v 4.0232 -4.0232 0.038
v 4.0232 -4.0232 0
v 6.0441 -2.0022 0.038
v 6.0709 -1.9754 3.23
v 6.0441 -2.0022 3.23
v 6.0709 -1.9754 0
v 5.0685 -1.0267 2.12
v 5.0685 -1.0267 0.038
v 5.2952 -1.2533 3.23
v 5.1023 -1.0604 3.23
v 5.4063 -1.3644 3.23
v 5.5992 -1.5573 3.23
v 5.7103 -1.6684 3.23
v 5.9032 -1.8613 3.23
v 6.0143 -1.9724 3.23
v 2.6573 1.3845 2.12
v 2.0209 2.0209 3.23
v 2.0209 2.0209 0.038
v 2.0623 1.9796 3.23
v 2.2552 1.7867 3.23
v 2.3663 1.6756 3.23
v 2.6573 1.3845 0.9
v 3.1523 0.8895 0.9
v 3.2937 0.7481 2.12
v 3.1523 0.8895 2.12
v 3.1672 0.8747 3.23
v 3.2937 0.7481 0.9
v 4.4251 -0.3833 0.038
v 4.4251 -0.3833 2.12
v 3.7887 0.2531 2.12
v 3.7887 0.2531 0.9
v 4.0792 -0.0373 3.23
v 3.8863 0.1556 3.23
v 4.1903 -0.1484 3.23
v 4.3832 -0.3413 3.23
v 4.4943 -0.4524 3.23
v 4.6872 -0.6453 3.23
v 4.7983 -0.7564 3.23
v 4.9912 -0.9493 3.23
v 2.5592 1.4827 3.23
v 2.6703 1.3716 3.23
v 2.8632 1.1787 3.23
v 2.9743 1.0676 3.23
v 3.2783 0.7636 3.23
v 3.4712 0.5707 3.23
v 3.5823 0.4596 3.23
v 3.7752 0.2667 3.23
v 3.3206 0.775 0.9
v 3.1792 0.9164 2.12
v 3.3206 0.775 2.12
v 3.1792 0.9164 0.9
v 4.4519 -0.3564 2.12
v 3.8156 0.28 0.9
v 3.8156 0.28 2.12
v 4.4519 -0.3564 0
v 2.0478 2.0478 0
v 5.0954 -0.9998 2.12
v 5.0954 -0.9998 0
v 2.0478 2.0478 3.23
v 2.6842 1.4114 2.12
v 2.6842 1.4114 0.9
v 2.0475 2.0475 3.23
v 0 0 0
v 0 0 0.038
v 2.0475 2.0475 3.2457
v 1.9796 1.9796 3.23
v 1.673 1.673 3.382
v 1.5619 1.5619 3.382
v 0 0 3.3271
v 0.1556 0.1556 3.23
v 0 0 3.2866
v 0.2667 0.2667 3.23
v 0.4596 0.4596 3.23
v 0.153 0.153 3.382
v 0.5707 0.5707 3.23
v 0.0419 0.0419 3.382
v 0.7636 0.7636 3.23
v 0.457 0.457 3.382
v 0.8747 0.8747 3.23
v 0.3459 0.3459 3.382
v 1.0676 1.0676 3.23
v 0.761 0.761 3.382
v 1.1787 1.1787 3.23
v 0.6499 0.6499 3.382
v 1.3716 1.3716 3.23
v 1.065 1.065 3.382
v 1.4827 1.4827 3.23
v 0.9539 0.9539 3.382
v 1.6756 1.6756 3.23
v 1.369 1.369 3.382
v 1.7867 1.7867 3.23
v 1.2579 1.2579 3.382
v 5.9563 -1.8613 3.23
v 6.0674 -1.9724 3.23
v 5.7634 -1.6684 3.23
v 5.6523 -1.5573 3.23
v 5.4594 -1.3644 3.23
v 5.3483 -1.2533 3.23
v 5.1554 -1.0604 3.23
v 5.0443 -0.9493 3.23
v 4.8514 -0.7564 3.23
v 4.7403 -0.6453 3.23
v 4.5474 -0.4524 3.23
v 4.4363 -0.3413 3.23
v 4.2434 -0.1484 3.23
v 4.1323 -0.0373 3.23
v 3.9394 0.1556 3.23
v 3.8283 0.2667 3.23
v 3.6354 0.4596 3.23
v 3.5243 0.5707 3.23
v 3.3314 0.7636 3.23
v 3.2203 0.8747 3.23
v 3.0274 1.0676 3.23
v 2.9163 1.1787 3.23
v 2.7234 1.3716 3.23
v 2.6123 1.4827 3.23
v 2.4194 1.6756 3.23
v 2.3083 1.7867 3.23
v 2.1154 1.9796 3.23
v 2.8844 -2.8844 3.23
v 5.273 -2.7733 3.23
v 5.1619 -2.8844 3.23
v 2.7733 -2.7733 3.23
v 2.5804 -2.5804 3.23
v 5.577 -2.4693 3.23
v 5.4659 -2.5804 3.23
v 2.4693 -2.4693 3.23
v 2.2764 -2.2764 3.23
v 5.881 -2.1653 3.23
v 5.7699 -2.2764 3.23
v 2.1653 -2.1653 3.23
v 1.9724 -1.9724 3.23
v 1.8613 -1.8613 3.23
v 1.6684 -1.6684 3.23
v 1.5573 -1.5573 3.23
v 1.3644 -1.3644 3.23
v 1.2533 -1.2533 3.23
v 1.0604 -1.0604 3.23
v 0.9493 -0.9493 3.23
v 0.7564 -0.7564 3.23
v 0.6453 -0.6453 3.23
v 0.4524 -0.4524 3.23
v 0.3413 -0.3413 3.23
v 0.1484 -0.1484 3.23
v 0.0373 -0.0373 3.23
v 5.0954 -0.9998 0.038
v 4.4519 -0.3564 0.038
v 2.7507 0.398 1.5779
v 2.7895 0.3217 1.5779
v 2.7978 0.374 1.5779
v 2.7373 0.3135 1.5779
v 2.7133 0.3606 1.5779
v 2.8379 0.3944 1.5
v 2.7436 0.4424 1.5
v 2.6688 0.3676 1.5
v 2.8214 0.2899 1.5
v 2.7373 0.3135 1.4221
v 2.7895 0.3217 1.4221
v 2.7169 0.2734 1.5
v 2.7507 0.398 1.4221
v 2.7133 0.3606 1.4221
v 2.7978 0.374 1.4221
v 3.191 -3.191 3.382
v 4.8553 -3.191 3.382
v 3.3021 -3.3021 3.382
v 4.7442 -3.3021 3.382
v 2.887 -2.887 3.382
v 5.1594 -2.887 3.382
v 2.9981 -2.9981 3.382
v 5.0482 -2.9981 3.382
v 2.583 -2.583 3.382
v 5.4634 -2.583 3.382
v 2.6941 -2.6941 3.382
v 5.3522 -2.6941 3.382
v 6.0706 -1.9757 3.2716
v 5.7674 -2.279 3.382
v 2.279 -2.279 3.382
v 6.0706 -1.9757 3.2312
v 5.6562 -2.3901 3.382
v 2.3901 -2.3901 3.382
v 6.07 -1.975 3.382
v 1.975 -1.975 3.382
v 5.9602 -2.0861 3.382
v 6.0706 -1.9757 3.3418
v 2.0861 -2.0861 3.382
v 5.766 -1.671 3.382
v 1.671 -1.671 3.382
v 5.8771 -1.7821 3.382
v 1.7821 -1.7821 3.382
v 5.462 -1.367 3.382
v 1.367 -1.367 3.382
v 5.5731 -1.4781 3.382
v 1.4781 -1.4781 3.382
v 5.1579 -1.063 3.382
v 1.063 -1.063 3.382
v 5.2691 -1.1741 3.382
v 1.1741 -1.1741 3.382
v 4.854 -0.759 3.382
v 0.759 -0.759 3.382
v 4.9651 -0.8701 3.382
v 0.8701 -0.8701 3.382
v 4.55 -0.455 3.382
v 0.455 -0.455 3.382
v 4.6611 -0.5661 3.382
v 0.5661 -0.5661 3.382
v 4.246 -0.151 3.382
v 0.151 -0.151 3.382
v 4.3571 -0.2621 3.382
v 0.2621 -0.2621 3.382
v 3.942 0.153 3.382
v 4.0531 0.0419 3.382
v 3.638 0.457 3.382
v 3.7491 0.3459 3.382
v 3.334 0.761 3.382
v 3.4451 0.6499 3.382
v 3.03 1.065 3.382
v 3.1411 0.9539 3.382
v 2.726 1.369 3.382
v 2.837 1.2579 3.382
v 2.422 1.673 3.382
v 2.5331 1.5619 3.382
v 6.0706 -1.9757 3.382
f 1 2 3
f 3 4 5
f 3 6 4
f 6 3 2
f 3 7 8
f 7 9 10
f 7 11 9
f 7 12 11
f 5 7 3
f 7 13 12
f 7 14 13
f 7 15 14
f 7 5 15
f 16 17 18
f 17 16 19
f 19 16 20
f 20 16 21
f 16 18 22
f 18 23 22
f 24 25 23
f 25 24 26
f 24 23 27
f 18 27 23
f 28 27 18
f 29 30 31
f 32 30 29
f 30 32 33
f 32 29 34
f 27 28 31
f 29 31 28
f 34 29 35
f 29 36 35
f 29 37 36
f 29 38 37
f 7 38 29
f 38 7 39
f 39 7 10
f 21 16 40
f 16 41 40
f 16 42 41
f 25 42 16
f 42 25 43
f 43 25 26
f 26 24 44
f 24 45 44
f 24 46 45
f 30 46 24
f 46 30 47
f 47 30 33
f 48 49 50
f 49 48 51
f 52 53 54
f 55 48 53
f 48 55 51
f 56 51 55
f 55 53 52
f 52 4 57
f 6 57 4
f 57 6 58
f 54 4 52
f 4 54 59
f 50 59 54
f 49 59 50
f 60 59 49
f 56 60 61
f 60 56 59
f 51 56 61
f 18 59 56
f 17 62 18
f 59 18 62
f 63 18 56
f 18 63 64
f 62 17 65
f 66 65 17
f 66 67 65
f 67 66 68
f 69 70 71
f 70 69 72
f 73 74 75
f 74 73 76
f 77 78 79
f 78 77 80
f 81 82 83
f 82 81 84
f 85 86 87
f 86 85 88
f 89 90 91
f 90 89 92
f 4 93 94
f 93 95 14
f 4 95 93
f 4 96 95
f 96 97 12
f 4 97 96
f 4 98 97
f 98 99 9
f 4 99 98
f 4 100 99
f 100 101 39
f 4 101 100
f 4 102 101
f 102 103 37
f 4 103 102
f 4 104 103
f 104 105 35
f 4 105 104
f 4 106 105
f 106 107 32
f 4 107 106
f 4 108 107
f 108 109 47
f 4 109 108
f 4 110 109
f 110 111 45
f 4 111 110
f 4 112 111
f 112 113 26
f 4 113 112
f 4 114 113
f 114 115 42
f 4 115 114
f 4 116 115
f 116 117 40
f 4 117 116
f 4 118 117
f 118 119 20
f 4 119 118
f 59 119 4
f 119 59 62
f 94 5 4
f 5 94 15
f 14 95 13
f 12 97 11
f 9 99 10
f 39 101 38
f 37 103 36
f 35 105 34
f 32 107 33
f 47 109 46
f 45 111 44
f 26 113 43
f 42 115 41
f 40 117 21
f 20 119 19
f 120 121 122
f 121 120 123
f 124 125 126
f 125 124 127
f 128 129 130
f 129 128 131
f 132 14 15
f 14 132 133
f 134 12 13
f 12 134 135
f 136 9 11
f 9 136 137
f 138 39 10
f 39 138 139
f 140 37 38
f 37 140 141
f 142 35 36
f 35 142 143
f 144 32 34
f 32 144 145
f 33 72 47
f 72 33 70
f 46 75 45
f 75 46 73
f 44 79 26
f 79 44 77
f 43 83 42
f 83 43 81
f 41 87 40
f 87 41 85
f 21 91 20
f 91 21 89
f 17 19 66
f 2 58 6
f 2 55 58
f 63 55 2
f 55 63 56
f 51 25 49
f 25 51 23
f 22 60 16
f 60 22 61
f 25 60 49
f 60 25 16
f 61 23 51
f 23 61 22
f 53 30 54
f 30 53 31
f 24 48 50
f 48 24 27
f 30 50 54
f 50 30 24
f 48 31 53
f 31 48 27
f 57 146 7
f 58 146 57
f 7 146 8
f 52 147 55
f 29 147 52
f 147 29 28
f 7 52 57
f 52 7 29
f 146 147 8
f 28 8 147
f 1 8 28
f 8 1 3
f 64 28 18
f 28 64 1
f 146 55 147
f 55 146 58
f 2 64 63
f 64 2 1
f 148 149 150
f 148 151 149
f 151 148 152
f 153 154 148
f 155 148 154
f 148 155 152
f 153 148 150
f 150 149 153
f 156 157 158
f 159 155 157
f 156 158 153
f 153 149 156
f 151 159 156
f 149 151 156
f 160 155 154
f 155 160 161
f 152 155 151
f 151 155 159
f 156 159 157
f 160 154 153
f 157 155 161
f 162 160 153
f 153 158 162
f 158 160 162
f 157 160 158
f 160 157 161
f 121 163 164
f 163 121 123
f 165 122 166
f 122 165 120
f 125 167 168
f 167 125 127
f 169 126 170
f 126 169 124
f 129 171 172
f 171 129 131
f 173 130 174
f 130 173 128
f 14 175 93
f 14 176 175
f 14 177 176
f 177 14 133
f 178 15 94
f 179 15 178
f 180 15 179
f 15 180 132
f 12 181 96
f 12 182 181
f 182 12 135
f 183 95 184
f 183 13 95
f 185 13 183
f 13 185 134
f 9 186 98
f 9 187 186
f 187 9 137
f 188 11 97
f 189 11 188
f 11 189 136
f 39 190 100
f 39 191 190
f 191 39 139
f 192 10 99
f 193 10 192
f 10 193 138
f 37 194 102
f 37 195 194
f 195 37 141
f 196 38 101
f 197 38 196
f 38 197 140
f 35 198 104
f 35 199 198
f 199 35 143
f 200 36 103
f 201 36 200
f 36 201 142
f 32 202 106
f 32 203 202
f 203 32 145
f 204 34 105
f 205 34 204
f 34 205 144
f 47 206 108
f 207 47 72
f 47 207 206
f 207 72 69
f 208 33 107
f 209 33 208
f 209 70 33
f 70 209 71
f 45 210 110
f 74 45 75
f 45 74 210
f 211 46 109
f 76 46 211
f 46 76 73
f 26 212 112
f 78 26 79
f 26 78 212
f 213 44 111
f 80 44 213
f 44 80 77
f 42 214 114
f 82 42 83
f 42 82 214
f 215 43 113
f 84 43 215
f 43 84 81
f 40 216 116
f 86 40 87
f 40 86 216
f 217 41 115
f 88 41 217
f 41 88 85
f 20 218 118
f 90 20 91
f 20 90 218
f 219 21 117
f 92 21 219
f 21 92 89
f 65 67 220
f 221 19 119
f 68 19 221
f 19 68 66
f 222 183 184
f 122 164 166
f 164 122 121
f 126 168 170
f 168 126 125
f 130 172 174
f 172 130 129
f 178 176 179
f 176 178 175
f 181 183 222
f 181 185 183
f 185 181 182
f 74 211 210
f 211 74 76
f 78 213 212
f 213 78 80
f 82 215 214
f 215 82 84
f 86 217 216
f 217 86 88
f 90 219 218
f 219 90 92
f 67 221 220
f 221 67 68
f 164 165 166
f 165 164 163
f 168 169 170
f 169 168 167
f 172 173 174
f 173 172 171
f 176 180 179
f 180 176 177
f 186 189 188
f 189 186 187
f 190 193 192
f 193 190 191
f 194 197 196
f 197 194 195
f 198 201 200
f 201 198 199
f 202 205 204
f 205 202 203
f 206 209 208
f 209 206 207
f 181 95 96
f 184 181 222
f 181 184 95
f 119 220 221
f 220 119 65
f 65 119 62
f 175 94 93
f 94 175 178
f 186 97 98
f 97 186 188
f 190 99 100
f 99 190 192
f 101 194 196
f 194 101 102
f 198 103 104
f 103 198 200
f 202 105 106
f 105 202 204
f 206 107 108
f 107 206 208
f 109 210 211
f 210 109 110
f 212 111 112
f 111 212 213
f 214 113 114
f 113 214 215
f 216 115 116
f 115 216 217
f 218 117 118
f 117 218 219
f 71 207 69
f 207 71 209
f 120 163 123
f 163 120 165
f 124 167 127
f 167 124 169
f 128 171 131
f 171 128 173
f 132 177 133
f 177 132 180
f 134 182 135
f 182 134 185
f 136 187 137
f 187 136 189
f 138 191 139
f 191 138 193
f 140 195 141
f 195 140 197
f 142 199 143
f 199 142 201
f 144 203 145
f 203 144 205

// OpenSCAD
$psi=.1;

rotate([0,0,-45]) {
// foor
cube([5.6896, 2.896, 0.038]);
// wall plane
translate([0, 2.896, 0]) {
    rotate([90,0,0]) {
        difference() {
            // wall
            cube([5.6896, 3.23, 0.038]);
            // window
            translate([0.9, 0.9, 0-$psi/2]) {
                cube([0.7, 1.22, 0.038 + $psi]);
            }
            // window
            translate([1.8, 0.9, 0-$psi/2]) {
                cube([0.7, 1.22, 0.038 + $psi]);
            }
            // door
            translate([3.4, 0.0, 0-$psi/2]) {
                cube([0.91, 2.12, 0.038 + $psi]);
            }
        }
    }
}
// head
translate([1.70,2.2,1.5]) {
    sphere(r = 0.09);
}
}
// pergola
intersection() {
    rotate([0,0,-45]) {
        translate([0,0,3.23]) {
            cube([5.6896, 2.8956, 0.152]);
        }
    }
    // slats
    for(i = [0 : 0.304 : 5]) {
        translate([0, i - 5, 4]) {
            rotate([-20,0,0]) {
                cube([10, 2.8956, 0.038]);
            }
        }
    }
}

//sun disk
//circle()
